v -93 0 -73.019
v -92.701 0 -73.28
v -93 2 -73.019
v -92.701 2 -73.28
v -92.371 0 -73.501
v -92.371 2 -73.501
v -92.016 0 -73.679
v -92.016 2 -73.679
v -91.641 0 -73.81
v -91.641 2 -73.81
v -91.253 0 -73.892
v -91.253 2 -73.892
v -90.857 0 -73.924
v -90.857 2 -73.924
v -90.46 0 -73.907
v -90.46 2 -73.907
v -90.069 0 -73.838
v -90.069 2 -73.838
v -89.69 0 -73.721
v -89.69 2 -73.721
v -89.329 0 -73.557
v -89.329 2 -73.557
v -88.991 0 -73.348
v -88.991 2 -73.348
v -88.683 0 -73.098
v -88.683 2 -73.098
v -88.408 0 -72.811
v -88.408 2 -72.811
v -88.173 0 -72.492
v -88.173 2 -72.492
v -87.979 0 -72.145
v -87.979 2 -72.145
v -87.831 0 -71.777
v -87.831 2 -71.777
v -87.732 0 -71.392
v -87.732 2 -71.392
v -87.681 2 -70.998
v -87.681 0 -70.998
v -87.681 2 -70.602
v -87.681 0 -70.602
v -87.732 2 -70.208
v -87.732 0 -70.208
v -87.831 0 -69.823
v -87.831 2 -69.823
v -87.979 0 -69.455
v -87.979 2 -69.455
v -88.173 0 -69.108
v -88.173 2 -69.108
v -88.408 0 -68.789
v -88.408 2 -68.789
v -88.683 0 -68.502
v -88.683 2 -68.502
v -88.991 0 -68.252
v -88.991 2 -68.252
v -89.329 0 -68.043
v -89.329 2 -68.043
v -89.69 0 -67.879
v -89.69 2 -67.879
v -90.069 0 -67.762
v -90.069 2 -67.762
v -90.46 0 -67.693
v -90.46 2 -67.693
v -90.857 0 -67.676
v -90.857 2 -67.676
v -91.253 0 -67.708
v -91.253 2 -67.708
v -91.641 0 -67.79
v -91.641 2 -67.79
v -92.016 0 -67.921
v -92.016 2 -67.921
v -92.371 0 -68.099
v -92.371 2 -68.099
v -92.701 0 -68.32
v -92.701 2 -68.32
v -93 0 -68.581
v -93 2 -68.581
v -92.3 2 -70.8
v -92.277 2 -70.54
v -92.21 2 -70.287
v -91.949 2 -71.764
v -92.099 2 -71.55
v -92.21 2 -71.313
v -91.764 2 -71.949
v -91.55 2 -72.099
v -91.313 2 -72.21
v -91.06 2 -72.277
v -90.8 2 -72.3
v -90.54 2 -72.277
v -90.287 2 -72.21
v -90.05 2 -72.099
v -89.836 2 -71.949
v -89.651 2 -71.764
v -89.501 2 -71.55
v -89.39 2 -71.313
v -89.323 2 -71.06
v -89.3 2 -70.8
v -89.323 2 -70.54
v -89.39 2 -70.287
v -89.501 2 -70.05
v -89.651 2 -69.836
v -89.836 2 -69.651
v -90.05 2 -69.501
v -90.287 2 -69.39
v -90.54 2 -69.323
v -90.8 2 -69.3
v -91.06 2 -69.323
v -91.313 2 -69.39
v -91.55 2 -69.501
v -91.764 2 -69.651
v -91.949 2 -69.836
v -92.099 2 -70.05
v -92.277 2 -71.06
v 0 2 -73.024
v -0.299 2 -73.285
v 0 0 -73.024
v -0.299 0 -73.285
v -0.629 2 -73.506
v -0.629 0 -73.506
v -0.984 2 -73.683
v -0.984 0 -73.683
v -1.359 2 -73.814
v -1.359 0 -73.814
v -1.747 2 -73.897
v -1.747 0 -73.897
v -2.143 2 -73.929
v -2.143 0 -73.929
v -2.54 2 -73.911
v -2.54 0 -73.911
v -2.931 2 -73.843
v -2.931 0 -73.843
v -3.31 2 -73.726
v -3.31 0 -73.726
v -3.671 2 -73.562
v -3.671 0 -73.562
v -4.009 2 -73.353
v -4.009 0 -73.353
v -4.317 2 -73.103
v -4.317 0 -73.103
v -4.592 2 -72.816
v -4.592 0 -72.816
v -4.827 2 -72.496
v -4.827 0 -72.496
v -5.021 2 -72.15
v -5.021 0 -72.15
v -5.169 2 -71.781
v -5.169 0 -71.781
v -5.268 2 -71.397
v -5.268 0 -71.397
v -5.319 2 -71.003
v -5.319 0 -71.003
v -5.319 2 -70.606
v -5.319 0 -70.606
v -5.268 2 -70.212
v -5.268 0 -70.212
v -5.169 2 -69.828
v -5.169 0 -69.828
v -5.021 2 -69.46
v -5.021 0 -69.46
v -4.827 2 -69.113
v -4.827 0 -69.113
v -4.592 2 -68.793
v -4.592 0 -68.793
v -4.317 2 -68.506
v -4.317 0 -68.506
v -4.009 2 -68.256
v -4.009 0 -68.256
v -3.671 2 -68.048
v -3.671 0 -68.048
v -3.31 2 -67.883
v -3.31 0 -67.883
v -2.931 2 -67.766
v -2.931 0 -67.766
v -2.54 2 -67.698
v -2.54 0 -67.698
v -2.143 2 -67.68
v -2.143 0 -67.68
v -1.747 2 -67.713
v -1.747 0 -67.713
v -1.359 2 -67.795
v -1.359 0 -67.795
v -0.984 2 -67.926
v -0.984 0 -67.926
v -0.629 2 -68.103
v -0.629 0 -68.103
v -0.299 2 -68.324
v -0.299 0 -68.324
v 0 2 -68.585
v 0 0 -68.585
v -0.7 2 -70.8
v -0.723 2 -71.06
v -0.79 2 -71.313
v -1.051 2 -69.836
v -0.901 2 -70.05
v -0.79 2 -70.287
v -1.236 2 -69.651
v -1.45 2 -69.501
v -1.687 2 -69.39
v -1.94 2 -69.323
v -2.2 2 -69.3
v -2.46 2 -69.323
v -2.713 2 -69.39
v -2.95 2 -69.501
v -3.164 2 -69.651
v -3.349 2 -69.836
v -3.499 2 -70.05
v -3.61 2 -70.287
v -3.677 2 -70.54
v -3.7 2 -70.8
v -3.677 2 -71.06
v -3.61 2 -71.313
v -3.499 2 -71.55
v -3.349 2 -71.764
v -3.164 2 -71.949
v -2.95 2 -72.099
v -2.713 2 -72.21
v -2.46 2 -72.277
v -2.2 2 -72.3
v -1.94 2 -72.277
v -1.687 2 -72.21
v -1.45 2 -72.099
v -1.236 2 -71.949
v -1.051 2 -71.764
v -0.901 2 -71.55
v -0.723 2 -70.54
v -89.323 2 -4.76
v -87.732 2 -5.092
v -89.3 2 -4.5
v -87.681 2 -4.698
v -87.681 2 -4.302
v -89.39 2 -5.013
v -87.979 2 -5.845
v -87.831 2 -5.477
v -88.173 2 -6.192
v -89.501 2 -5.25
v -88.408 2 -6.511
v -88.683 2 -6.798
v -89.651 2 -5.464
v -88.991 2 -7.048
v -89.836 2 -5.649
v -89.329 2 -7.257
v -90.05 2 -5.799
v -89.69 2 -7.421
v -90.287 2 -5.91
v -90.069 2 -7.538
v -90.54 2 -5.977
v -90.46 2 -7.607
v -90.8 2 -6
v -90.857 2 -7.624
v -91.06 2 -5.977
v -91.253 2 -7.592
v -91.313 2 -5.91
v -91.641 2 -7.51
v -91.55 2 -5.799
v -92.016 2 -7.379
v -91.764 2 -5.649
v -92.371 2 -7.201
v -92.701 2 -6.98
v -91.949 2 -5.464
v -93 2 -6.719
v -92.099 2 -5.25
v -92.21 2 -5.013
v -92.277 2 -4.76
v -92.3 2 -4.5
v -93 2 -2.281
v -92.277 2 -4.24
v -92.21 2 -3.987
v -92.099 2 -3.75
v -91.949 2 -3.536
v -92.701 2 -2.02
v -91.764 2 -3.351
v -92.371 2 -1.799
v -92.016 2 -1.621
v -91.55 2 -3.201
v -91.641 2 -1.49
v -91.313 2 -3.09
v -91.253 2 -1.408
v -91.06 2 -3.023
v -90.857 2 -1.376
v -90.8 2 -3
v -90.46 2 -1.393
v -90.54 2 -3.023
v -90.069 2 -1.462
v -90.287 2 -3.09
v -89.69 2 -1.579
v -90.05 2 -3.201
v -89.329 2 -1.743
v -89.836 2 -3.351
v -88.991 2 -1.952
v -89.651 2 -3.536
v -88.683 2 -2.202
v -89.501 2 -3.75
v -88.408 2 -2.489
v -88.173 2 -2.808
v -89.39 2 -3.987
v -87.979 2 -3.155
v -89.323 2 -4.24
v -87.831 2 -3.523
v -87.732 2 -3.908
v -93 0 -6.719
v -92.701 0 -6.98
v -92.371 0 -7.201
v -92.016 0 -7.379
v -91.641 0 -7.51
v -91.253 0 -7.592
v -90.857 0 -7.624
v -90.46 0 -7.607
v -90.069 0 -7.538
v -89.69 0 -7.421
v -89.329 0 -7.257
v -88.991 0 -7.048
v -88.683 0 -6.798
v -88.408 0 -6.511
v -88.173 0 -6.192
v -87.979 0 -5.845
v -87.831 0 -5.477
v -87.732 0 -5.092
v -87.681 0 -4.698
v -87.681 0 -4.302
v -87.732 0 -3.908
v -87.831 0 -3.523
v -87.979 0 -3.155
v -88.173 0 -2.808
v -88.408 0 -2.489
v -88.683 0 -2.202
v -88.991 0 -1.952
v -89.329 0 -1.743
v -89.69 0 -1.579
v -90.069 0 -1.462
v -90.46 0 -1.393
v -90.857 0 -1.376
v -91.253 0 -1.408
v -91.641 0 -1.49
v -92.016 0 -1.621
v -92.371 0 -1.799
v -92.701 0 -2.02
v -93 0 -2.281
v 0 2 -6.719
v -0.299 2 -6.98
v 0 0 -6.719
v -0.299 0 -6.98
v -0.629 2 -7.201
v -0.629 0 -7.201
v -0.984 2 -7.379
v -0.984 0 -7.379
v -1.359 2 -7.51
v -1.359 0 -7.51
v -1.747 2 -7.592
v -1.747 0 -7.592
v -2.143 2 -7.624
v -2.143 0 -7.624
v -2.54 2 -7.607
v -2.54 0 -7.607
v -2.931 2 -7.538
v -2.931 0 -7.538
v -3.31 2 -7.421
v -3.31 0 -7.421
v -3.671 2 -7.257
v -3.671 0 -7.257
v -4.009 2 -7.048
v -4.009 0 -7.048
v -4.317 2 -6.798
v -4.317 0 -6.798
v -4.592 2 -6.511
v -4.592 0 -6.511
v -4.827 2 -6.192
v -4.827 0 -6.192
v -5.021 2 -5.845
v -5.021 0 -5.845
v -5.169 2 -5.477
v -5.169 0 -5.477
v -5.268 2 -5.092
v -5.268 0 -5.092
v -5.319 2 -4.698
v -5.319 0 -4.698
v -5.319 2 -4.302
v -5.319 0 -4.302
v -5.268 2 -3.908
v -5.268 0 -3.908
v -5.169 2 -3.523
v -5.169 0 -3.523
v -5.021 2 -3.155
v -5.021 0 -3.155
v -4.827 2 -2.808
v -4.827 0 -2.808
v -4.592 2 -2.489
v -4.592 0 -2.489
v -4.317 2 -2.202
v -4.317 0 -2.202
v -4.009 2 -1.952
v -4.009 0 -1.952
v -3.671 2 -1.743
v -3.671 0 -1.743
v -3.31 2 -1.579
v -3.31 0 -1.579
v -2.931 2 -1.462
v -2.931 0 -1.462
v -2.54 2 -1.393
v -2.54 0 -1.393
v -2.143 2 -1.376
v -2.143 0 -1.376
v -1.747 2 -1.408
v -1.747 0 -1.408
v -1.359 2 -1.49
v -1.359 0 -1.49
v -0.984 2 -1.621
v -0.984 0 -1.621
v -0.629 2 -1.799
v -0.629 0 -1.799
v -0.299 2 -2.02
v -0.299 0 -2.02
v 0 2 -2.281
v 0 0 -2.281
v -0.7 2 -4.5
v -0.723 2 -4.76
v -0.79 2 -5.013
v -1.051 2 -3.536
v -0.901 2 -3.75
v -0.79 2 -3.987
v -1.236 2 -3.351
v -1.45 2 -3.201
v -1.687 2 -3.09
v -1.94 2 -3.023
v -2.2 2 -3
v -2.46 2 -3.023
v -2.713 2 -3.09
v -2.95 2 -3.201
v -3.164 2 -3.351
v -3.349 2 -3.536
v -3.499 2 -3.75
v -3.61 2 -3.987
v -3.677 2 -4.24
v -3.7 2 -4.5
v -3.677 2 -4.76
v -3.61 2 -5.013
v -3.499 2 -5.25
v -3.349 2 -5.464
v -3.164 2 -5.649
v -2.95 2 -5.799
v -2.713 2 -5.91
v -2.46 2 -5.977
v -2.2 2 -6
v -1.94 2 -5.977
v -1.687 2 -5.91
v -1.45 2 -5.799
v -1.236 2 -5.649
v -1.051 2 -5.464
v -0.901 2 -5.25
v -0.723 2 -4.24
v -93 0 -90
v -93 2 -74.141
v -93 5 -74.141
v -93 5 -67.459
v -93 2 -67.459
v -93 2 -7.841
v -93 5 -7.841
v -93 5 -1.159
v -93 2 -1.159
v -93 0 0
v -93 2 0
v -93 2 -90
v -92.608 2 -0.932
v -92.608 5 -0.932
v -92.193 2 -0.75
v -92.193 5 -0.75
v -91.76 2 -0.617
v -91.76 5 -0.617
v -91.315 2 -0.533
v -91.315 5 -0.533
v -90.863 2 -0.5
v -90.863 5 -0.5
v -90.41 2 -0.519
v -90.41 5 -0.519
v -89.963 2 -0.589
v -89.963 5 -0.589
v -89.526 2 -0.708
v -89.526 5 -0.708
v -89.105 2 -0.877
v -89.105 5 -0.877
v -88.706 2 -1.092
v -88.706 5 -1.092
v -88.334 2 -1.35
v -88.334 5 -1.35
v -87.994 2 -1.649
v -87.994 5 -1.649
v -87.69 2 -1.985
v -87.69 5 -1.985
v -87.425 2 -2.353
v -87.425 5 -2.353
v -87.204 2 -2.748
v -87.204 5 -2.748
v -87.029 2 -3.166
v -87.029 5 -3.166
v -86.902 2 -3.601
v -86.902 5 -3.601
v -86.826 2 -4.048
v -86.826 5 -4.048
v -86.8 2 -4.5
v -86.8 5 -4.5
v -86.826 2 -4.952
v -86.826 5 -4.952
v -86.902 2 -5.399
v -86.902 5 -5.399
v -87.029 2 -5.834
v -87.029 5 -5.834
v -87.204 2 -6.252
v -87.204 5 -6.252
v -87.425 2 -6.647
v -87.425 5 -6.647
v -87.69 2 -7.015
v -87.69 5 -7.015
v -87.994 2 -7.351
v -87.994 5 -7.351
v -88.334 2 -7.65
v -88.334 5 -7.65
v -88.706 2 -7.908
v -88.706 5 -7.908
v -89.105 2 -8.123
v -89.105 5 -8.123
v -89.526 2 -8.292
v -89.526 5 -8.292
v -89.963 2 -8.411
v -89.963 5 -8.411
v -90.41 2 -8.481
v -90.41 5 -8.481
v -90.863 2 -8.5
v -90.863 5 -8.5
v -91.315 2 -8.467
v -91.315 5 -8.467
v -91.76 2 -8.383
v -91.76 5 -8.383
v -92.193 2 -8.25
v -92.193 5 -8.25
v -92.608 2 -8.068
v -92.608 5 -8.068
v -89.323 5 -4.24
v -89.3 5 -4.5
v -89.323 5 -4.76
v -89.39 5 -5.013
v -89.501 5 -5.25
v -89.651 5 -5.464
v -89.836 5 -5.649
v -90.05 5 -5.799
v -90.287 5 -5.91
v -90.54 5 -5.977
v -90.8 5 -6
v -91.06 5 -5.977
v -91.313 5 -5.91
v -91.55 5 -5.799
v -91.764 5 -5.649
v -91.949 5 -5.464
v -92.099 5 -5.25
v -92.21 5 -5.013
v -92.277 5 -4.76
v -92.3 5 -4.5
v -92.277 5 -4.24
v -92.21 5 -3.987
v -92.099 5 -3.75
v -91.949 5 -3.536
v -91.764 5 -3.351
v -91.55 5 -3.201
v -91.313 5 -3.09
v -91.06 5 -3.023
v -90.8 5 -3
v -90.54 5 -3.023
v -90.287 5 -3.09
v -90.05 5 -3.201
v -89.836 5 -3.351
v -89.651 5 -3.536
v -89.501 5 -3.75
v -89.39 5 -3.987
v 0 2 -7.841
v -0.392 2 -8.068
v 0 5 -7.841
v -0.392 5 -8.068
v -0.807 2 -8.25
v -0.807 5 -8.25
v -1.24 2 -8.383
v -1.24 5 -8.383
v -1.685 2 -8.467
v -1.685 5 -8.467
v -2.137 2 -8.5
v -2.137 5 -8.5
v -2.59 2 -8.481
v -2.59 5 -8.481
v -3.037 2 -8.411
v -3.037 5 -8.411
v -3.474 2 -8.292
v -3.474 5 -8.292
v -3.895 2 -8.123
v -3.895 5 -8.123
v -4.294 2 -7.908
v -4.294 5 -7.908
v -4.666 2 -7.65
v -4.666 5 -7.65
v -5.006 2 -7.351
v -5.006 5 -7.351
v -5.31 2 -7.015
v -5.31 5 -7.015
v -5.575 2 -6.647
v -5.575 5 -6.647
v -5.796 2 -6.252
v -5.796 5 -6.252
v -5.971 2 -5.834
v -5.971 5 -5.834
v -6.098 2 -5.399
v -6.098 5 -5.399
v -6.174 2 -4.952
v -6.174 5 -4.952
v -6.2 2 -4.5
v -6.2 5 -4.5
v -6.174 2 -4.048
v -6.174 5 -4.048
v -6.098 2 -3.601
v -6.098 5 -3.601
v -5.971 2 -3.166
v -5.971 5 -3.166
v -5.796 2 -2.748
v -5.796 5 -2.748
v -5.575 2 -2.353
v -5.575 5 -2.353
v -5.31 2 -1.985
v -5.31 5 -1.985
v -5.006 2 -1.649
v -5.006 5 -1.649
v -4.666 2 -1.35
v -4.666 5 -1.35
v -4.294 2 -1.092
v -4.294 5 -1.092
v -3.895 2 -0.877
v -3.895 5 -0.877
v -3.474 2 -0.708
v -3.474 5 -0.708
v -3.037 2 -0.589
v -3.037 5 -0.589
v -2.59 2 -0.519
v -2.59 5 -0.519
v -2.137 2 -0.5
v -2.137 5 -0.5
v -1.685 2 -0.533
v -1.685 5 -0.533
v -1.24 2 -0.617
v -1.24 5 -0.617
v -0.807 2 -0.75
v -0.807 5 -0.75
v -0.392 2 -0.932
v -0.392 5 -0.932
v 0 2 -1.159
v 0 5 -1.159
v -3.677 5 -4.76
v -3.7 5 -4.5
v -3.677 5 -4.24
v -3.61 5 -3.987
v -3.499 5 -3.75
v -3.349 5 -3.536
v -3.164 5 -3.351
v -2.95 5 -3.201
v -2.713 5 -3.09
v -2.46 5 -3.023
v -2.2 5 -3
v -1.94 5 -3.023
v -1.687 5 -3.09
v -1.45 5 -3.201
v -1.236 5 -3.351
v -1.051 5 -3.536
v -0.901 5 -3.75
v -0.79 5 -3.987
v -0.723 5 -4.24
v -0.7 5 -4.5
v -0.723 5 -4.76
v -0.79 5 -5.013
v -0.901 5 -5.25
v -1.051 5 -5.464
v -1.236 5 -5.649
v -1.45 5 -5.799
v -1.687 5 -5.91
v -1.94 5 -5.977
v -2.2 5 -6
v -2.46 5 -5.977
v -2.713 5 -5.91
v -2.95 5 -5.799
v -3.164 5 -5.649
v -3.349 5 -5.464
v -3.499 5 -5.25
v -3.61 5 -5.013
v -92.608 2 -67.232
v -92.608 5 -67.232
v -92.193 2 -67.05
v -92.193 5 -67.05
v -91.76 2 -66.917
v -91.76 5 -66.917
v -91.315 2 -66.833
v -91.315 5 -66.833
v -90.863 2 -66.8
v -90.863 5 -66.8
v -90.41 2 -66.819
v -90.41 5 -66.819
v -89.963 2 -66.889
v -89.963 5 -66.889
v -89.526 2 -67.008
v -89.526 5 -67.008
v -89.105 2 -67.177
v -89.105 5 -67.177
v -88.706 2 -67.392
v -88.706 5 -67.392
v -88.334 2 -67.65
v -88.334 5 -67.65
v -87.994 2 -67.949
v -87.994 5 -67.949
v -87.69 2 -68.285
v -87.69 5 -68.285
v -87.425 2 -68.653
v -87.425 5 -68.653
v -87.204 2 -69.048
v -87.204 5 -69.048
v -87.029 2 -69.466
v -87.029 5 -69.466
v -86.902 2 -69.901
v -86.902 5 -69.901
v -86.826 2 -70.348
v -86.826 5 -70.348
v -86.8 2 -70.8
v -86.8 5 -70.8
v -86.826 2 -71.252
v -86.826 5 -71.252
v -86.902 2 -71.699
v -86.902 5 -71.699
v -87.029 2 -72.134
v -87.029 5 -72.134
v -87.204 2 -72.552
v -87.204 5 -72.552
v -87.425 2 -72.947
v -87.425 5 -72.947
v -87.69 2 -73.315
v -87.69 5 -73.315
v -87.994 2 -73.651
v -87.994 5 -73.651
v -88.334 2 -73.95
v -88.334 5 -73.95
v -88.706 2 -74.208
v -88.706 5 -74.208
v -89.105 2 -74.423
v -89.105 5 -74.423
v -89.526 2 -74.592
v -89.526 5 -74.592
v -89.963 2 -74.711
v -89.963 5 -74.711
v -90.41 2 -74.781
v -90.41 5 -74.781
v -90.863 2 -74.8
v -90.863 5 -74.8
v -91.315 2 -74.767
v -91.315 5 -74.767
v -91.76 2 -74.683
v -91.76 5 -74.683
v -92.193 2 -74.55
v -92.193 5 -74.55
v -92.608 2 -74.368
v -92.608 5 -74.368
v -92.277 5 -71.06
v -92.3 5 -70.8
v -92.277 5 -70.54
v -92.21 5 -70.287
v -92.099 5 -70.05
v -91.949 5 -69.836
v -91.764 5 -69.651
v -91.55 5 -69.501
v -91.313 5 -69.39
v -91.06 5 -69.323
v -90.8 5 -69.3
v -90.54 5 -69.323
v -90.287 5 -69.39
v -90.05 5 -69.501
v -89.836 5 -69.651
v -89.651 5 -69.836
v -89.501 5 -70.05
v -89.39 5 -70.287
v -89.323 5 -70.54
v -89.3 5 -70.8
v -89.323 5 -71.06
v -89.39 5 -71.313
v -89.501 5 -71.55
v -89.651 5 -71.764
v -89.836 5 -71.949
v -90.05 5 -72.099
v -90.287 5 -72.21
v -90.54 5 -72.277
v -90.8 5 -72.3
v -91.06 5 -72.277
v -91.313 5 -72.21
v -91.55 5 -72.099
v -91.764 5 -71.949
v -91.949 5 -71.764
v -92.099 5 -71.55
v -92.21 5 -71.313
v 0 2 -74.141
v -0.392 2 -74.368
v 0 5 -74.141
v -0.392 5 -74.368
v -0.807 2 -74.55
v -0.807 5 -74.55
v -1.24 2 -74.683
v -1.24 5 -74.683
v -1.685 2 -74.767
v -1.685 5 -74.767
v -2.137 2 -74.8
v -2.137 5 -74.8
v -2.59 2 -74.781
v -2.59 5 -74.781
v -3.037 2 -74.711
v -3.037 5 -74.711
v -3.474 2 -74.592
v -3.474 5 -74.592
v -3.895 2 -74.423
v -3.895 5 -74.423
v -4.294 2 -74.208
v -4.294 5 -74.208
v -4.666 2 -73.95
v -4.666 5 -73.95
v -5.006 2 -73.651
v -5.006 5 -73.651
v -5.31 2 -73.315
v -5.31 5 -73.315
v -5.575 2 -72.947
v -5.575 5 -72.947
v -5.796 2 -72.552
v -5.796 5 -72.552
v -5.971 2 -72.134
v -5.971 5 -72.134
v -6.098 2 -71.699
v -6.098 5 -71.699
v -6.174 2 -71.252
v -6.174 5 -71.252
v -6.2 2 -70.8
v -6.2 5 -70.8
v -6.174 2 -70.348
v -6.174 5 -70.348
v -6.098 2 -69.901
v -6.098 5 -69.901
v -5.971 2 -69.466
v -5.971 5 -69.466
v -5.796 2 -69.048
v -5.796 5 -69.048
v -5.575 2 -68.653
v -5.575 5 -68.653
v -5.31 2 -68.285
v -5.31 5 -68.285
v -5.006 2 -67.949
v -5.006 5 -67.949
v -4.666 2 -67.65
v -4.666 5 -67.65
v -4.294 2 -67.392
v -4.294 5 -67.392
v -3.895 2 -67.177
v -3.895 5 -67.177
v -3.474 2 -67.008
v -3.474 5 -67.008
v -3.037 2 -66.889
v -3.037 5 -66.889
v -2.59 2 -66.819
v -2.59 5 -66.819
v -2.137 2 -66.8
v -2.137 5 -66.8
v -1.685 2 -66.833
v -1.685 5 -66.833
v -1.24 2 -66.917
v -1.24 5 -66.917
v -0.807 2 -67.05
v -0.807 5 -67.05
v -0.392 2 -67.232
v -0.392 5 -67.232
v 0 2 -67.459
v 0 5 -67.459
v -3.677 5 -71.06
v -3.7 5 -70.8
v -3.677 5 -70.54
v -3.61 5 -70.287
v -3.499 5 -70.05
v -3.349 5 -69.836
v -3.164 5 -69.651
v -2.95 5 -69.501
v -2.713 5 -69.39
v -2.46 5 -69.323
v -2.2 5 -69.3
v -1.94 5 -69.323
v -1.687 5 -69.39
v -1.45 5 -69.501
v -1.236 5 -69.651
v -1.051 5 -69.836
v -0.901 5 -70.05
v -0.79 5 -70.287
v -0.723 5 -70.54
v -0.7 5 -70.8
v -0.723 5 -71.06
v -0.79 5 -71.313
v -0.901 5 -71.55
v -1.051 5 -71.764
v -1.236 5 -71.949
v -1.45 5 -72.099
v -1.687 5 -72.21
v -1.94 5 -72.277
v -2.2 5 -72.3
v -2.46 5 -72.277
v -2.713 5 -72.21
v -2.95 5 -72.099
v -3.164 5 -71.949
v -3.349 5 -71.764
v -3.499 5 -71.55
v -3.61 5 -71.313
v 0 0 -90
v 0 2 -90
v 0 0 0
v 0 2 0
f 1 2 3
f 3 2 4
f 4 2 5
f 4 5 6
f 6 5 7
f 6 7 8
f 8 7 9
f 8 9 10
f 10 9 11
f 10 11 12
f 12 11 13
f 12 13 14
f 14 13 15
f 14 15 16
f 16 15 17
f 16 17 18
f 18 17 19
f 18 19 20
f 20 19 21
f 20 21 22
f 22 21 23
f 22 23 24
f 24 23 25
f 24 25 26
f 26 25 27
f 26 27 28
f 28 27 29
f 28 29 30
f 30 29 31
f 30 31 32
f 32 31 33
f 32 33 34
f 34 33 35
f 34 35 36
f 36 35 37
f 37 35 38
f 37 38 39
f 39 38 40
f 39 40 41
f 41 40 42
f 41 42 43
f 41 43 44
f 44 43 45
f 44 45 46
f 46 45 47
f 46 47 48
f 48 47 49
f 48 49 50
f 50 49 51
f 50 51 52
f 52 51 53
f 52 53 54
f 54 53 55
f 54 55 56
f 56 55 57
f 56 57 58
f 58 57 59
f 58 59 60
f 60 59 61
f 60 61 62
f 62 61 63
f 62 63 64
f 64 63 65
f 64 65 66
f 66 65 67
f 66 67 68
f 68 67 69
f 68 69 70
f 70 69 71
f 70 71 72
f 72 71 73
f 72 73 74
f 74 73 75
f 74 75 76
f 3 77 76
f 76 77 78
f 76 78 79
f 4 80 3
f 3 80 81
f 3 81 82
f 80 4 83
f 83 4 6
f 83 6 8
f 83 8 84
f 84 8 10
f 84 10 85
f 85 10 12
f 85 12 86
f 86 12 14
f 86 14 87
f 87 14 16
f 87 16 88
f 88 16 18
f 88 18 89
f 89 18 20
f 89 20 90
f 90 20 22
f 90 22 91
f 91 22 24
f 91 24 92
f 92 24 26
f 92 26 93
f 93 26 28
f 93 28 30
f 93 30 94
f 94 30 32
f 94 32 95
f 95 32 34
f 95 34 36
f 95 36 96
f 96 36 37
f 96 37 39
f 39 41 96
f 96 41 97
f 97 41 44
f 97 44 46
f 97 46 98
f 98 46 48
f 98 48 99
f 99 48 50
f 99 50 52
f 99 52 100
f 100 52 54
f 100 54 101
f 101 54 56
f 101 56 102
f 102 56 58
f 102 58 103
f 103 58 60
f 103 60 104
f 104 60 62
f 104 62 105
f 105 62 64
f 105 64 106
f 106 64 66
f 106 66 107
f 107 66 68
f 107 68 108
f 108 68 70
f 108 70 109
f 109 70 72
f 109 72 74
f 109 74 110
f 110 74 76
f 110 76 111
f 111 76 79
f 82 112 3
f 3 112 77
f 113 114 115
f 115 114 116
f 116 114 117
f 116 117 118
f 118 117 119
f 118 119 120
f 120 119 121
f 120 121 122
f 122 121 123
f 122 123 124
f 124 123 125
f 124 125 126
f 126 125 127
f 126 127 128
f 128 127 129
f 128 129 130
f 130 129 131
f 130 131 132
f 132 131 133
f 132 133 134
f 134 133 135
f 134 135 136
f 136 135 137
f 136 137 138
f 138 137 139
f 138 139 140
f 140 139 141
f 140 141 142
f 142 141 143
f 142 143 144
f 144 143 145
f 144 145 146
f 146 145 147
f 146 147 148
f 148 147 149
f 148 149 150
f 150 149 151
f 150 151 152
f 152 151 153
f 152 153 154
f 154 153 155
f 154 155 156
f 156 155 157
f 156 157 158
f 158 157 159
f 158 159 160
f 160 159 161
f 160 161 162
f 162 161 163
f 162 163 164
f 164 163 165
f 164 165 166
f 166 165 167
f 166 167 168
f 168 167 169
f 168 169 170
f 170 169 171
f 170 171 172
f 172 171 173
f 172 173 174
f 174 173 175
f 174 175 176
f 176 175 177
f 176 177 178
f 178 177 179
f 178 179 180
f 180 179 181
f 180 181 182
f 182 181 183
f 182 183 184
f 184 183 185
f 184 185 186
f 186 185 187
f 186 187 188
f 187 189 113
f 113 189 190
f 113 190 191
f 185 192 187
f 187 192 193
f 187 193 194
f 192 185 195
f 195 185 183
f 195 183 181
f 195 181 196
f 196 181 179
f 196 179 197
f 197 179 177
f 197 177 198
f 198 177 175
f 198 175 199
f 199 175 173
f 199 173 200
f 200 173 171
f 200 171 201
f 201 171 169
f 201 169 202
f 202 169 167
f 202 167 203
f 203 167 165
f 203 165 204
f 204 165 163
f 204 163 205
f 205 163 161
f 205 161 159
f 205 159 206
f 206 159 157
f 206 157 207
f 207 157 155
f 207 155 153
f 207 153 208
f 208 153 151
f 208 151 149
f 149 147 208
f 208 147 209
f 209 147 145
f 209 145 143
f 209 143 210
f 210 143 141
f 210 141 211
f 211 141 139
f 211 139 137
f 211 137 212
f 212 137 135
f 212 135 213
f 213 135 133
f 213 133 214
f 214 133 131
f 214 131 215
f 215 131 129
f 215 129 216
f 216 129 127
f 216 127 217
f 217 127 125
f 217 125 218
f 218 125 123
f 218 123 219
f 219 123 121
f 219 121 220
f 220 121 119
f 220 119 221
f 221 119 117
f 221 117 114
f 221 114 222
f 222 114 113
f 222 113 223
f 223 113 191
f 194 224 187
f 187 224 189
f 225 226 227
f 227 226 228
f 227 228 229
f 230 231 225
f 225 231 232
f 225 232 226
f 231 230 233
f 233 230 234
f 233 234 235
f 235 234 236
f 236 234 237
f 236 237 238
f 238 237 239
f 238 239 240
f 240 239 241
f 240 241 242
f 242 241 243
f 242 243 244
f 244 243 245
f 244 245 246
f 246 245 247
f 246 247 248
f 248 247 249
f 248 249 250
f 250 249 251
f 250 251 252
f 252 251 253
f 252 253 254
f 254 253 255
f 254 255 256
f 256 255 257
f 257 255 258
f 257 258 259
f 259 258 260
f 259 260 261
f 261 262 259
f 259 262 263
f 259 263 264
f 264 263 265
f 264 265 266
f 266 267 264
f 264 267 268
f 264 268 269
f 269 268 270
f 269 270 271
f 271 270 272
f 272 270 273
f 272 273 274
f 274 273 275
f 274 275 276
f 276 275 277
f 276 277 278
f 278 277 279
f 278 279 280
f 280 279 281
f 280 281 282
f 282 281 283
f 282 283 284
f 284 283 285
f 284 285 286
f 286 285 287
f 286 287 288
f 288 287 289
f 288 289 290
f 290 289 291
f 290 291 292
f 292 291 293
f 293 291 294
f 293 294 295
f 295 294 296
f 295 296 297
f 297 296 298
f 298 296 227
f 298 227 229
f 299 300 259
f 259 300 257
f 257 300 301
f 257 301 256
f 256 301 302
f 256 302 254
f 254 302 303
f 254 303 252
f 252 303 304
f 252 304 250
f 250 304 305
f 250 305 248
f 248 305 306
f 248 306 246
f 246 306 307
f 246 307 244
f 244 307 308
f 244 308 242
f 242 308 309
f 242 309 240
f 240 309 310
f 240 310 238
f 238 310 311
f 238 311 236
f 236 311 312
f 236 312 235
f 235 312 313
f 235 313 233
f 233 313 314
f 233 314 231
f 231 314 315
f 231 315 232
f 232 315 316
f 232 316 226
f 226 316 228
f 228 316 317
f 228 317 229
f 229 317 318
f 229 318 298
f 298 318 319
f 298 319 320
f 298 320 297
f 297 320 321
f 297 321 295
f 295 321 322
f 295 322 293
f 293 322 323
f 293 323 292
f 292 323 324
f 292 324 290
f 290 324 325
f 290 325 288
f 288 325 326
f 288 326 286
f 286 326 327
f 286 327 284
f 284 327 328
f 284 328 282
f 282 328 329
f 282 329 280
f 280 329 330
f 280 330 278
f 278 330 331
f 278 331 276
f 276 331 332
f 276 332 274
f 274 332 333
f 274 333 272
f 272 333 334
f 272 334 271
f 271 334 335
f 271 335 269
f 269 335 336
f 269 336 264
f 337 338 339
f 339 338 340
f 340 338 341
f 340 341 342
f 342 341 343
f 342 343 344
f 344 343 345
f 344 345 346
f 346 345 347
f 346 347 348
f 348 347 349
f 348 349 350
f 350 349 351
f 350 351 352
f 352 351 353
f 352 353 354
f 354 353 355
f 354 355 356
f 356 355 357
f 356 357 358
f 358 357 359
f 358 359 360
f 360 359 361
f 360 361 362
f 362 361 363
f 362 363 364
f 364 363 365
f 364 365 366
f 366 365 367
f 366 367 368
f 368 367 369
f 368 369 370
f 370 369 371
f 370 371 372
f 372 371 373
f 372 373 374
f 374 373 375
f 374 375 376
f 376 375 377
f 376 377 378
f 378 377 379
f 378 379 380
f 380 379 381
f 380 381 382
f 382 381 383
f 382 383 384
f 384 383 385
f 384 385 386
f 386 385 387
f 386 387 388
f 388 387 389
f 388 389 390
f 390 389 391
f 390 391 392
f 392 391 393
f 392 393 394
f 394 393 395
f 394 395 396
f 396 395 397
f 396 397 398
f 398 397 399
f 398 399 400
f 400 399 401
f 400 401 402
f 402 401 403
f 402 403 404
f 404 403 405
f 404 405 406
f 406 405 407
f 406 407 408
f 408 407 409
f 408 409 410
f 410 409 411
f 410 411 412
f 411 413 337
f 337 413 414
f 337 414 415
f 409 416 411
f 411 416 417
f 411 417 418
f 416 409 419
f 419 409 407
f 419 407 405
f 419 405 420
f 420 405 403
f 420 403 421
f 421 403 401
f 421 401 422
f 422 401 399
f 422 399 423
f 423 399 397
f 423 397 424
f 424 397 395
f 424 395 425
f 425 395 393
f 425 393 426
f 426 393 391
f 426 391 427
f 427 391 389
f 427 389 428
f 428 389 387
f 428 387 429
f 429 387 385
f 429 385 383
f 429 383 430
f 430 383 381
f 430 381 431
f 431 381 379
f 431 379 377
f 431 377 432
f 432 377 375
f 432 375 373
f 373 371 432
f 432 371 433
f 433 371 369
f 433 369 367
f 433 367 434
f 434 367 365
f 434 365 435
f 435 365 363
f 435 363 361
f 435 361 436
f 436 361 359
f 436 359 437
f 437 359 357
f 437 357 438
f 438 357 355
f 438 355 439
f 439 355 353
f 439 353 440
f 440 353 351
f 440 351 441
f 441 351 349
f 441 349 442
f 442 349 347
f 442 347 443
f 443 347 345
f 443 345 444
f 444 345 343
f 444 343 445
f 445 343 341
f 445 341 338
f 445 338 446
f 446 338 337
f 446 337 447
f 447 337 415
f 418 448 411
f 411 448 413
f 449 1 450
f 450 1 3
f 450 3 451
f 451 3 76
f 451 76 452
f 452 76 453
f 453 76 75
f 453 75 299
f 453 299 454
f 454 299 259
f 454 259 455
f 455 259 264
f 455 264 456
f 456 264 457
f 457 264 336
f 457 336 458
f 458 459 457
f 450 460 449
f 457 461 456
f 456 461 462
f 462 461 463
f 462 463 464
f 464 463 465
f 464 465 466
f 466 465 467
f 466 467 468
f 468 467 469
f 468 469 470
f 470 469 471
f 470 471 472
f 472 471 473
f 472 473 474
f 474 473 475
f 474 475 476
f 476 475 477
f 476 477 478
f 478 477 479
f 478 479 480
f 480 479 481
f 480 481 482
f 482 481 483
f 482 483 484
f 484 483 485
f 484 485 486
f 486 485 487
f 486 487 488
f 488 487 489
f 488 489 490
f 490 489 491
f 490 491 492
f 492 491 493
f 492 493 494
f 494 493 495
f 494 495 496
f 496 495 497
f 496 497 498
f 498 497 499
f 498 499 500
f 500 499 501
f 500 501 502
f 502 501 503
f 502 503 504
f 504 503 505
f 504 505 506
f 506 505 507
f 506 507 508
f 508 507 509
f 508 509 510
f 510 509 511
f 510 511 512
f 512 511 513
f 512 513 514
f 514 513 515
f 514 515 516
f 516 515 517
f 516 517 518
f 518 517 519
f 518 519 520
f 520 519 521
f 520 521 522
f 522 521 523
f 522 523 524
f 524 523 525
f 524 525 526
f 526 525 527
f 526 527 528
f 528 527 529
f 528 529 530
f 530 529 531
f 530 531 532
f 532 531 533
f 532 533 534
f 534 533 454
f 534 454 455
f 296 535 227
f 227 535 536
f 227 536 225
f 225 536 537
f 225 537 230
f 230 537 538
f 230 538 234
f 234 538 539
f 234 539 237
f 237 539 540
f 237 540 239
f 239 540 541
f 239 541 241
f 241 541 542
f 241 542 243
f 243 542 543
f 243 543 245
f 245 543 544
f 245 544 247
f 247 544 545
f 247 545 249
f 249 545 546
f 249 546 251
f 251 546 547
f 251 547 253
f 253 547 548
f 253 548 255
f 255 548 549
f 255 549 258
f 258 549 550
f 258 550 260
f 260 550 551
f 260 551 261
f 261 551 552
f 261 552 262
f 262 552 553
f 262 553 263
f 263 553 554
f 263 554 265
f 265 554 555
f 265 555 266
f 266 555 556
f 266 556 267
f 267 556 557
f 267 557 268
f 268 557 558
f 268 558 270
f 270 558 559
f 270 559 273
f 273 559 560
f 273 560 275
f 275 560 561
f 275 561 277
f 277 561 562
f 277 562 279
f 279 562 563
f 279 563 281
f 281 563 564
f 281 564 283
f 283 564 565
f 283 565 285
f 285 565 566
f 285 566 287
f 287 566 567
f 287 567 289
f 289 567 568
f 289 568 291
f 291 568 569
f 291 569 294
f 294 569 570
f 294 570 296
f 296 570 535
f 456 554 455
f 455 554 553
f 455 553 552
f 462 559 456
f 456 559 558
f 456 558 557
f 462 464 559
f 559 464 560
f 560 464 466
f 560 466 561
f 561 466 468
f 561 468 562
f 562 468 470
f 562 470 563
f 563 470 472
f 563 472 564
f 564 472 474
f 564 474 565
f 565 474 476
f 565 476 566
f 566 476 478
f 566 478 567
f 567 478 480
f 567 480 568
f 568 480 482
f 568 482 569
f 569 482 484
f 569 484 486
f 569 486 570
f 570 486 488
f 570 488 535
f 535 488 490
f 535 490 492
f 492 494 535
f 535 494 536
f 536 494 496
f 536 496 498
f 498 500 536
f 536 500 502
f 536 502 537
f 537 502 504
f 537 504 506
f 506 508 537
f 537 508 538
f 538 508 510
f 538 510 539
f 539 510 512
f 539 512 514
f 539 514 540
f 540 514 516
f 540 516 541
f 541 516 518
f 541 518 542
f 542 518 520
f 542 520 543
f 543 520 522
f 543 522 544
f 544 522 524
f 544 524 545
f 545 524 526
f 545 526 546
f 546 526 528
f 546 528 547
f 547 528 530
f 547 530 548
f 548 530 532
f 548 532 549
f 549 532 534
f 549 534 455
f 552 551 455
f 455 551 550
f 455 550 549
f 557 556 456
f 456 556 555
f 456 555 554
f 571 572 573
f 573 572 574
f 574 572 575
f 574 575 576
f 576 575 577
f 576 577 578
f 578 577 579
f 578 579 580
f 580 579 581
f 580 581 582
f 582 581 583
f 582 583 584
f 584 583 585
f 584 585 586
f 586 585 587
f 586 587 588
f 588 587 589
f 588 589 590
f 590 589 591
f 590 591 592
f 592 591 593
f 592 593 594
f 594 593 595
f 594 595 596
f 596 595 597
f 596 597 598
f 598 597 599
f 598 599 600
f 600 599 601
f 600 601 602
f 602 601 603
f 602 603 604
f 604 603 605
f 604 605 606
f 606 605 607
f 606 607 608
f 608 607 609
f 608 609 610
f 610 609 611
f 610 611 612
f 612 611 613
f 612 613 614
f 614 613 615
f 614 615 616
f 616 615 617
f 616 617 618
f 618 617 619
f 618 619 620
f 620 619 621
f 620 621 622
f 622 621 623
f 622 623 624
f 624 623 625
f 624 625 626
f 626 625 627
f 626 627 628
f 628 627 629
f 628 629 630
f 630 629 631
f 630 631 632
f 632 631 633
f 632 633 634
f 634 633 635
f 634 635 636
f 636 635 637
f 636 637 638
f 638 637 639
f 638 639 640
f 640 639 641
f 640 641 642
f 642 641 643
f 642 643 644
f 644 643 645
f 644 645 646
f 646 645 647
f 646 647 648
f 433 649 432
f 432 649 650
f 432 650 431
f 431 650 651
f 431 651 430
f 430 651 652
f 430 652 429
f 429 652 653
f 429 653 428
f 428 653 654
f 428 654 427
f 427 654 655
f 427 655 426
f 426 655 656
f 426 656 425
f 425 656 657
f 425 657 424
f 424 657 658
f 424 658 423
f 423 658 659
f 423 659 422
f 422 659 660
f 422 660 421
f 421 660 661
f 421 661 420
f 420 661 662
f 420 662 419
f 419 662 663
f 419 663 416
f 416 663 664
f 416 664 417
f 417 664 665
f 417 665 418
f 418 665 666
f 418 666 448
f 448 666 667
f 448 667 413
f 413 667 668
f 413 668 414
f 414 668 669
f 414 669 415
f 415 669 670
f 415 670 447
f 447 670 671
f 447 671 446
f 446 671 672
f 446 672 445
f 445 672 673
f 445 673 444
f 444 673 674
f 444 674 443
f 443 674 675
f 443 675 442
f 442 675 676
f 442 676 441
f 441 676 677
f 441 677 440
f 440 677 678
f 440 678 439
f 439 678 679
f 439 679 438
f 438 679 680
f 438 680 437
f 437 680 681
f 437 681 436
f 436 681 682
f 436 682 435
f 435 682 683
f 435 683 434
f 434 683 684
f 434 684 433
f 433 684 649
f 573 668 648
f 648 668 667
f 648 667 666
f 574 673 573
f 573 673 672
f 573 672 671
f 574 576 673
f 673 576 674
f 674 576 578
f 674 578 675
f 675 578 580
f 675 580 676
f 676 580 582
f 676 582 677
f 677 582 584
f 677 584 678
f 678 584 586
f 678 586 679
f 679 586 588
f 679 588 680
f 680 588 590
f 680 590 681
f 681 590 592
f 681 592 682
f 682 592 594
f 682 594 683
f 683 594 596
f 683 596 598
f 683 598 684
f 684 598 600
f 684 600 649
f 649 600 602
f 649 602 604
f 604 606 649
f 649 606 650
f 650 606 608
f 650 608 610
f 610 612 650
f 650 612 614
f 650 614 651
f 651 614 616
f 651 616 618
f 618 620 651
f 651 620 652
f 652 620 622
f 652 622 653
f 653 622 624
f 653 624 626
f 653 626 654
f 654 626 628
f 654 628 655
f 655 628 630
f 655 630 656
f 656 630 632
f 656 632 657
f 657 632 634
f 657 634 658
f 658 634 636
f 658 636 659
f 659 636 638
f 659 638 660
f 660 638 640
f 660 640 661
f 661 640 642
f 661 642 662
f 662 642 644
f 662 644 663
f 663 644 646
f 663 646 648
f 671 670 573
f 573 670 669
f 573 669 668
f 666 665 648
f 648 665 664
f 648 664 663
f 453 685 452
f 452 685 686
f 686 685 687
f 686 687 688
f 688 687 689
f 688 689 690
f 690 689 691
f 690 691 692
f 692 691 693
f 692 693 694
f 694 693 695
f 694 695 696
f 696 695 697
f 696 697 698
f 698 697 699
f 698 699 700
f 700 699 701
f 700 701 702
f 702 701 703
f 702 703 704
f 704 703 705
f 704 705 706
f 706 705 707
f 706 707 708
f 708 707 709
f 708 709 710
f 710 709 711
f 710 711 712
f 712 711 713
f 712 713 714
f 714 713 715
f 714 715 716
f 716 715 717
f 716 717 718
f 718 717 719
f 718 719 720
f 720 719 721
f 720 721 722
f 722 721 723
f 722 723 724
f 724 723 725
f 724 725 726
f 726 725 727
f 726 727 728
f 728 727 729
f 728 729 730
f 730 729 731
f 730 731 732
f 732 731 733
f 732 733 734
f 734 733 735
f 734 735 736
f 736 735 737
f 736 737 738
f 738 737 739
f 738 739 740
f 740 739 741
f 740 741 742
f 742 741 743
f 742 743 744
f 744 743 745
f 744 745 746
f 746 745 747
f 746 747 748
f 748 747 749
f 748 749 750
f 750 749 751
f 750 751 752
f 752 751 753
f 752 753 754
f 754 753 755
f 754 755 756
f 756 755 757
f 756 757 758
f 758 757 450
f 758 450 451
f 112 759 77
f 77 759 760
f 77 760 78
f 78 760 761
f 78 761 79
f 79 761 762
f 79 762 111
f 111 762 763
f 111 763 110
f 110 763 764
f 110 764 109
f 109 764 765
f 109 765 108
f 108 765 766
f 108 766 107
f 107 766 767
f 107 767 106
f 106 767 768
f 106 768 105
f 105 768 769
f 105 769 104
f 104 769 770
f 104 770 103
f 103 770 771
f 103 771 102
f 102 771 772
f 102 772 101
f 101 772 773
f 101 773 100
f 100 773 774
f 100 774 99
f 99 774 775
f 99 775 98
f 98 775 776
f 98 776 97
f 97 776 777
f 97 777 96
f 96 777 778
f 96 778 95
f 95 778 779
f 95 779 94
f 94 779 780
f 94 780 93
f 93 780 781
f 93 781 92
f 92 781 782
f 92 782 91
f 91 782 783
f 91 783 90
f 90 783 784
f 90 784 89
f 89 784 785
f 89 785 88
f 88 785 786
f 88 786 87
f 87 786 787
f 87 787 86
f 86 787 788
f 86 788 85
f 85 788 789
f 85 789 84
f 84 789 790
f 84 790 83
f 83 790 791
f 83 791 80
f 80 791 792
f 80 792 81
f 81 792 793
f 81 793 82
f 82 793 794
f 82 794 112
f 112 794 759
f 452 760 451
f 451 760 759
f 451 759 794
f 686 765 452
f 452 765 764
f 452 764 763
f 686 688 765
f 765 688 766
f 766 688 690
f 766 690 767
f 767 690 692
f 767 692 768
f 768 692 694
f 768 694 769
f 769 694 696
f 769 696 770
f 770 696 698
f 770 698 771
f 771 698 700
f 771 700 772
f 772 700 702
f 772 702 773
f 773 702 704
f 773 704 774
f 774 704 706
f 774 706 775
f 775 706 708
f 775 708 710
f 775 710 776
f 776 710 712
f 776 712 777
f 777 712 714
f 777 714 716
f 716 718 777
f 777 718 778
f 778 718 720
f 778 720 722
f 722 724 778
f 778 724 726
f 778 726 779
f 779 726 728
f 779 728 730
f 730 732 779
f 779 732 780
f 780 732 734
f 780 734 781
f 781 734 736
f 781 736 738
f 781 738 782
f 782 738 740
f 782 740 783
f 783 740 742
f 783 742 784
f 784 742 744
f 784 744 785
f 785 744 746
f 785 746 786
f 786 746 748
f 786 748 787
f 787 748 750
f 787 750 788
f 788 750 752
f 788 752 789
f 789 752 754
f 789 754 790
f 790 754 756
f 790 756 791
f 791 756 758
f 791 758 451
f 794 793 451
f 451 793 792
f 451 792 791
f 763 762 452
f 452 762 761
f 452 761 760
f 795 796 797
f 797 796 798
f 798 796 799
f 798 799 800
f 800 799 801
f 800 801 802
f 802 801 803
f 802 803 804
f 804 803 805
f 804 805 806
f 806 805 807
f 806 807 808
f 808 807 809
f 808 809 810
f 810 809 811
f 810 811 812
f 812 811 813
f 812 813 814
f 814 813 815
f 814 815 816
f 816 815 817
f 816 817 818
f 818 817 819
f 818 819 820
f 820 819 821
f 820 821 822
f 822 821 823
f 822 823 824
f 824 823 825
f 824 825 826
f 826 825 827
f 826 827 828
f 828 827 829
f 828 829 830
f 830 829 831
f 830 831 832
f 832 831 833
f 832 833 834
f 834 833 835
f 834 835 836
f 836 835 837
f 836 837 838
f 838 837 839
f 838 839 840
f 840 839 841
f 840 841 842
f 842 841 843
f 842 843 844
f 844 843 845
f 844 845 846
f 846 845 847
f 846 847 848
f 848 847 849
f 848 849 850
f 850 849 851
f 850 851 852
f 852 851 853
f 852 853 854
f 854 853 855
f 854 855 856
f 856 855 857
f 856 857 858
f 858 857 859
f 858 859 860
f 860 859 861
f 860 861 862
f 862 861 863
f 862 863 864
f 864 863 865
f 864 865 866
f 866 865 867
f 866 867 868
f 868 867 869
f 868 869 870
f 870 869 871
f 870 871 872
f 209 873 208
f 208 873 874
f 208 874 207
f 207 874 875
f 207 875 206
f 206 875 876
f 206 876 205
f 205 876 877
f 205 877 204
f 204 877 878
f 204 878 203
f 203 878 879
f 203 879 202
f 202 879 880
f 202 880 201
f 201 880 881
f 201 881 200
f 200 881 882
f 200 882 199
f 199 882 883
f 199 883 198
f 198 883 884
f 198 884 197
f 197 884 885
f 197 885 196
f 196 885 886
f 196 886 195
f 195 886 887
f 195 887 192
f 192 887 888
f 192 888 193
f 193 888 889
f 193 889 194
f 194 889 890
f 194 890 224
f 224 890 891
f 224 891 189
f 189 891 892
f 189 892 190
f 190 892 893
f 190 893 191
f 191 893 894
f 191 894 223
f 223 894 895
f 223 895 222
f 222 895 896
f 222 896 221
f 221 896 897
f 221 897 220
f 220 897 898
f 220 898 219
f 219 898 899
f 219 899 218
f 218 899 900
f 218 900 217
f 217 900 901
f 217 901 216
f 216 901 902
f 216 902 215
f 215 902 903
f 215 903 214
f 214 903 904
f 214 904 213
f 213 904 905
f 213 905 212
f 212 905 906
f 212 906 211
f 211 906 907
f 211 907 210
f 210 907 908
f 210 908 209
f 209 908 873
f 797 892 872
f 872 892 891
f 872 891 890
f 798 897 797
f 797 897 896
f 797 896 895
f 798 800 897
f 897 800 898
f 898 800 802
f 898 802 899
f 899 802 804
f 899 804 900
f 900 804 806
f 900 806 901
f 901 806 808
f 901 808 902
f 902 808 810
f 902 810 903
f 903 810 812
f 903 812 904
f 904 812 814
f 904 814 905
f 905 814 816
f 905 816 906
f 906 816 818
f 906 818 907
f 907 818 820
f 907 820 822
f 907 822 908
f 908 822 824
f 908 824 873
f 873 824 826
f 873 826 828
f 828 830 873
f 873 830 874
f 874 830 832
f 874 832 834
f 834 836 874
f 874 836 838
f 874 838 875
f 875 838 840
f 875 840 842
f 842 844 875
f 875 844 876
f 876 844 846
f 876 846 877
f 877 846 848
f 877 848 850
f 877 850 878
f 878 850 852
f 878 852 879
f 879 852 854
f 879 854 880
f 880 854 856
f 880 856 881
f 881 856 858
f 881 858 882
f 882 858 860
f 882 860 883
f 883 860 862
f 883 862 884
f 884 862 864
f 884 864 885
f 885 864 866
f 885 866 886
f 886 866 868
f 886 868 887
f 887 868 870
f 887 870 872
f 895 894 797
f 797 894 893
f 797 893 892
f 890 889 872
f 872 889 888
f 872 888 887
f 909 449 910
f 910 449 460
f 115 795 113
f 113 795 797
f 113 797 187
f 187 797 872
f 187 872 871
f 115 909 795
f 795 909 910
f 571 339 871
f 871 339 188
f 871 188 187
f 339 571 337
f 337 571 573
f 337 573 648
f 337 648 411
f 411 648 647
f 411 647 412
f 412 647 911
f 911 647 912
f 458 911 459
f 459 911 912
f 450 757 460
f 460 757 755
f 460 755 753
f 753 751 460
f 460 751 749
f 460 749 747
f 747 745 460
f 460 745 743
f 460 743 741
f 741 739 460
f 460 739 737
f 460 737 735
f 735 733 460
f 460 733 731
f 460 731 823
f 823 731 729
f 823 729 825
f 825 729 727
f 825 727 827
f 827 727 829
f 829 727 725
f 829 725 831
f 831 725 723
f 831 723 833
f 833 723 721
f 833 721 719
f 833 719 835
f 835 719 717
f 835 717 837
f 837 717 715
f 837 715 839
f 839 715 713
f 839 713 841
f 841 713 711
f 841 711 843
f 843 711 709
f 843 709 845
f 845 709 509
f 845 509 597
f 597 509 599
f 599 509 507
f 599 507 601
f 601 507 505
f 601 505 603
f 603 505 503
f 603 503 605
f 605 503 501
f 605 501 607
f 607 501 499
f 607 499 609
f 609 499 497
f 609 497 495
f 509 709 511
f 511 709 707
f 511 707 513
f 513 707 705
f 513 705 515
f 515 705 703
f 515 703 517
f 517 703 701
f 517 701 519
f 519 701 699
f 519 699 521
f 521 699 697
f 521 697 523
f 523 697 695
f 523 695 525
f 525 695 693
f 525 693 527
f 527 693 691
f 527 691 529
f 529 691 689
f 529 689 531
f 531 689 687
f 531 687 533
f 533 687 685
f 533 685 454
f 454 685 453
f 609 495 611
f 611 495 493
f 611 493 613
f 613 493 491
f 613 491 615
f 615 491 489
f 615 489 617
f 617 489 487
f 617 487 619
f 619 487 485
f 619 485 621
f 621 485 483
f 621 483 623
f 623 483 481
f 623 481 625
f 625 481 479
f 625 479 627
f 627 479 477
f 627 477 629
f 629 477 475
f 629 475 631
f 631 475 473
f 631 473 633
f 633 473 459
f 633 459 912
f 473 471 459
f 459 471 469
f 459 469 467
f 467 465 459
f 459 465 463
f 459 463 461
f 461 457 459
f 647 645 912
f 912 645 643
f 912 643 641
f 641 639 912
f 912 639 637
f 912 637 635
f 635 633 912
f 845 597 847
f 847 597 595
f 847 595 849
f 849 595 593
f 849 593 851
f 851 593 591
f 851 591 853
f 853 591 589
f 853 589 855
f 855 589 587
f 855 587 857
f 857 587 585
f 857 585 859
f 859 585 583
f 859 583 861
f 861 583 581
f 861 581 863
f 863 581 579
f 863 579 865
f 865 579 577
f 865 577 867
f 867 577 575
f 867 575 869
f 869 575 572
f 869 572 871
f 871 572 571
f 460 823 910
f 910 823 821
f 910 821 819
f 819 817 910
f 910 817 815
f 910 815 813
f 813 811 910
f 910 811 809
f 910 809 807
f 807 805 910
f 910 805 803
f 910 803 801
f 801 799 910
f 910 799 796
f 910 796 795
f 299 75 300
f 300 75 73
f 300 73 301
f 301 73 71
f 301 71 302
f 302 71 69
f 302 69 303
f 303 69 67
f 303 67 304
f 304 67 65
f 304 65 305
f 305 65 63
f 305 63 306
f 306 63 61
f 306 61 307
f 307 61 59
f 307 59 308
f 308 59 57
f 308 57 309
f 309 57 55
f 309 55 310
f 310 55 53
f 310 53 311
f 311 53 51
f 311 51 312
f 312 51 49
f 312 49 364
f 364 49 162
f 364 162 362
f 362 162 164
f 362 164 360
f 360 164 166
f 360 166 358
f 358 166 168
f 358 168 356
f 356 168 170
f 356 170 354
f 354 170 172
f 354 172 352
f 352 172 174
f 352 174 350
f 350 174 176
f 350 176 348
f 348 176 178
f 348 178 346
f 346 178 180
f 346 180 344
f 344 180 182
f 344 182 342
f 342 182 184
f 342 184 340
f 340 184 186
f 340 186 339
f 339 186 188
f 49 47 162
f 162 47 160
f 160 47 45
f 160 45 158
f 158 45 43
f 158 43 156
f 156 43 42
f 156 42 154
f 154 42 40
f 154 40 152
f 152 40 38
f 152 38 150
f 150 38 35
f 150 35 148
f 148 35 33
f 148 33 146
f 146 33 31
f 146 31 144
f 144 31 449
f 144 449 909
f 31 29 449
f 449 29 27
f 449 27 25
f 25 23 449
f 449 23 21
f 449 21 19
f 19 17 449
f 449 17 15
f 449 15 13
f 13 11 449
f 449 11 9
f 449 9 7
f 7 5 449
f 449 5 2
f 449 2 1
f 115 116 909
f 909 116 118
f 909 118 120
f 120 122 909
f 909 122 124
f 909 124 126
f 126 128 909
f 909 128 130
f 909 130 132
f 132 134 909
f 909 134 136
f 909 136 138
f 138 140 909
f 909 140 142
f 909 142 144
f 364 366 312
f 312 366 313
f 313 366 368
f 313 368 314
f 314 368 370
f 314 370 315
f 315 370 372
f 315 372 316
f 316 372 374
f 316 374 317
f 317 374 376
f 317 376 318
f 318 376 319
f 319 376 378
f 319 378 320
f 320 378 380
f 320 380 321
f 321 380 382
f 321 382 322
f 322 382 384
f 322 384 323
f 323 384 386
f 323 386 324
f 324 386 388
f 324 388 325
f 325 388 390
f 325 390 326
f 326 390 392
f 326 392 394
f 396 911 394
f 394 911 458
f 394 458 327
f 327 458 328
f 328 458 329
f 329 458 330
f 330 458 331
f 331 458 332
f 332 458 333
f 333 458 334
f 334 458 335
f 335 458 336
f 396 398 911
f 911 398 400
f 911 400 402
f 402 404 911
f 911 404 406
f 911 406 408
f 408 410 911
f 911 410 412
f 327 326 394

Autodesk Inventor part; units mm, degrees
ref_plane "YZ Plane" through (0, 0, 0) normal (1, 0, 0) x (0, 1, 0)
ref_plane "XZ Plane" through (0, 0, 0) normal (0, 1, 0) x (-1, 0, 0)
ref_plane "XY Plane" through (0, 0, 0) normal (0, 0, 1) x (1, 0, 0)
sketch "Sketch1" plane through (0, 0, 0) normal (0, 1, 0) x (-1, 0, 0)
  line L0 (0, 0) -> (93, 0)
  line L1 (93, 0) -> (93, -90)
  line L2 (93, -90) -> (0, -90)
  line L3 (0, -90) -> (0, 0)
  circle A0 centre (90.8, -4.5) radius 1.5
  circle A1 centre (90.8, -70.8) radius 1.5
  circle A2 centre (2.2, -4.5) radius 1.5
  circle A3 centre (2.2, -70.8) radius 1.5
  arc A4 (0, -74.1407) -> (0, -67.4593) centre (2.2, -70.8) ccw
  arc A5 (0, -7.8407) -> (0, -1.1593) centre (2.2, -4.5) ccw
  arc A6 (93, -67.4593) -> (93, -74.1407) centre (90.8, -70.8) ccw
  arc A7 (93, -1.1593) -> (93, -7.8407) centre (90.8, -4.5) ccw
  dimension "d0" = 93
  dimension "d1" = 90
  dimension "d13" = 3
  dimension "d14" = 3
  dimension "d15" = 3
  dimension "d39" = 8
  dimension "d40" = 8
  dimension "d41" = 8
  dimension "d42" = 8
extrude "Extrusion6" add sketch "Sketch1" along normal blind 2 contours L0 L1 A7 A6 L2 L3 A4 A5
extrude "Extrusion7" add sketch "Sketch1" along normal blind 5 contours A5 L3 | L1 A7 | A4 L3 | L1 A6
sketch "Sketch4" plane through (0, 0, 0) normal (0, -1, 0) x (1, 0, 0)
  circle A0 centre (-2.2, -4.5) radius 1.5 projected
  circle A1 centre (-2.2, -4.5) radius 3.125
  circle A2 centre (-2.2, -70.8046) radius 3.125
  circle A3 centre (-90.8, -4.5) radius 1.5 projected
  circle A4 centre (-90.8, -4.5) radius 3.125
  circle A5 centre (-90.8, -70.8) radius 1.5 projected
  circle A6 centre (-90.8, -70.8) radius 3.125
  point P0 (0, 0)
  dimension "d47" = 6.25
  dimension "d48" = 6.25
  dimension "d49" = 6.25
  dimension "d50" = 6.25
extrude "Extrusion8" cut sketch "Sketch4" against normal blind 2 contours A0 | A1 | A2 | A4 | A5 | A6
properties part number "caseBack"
